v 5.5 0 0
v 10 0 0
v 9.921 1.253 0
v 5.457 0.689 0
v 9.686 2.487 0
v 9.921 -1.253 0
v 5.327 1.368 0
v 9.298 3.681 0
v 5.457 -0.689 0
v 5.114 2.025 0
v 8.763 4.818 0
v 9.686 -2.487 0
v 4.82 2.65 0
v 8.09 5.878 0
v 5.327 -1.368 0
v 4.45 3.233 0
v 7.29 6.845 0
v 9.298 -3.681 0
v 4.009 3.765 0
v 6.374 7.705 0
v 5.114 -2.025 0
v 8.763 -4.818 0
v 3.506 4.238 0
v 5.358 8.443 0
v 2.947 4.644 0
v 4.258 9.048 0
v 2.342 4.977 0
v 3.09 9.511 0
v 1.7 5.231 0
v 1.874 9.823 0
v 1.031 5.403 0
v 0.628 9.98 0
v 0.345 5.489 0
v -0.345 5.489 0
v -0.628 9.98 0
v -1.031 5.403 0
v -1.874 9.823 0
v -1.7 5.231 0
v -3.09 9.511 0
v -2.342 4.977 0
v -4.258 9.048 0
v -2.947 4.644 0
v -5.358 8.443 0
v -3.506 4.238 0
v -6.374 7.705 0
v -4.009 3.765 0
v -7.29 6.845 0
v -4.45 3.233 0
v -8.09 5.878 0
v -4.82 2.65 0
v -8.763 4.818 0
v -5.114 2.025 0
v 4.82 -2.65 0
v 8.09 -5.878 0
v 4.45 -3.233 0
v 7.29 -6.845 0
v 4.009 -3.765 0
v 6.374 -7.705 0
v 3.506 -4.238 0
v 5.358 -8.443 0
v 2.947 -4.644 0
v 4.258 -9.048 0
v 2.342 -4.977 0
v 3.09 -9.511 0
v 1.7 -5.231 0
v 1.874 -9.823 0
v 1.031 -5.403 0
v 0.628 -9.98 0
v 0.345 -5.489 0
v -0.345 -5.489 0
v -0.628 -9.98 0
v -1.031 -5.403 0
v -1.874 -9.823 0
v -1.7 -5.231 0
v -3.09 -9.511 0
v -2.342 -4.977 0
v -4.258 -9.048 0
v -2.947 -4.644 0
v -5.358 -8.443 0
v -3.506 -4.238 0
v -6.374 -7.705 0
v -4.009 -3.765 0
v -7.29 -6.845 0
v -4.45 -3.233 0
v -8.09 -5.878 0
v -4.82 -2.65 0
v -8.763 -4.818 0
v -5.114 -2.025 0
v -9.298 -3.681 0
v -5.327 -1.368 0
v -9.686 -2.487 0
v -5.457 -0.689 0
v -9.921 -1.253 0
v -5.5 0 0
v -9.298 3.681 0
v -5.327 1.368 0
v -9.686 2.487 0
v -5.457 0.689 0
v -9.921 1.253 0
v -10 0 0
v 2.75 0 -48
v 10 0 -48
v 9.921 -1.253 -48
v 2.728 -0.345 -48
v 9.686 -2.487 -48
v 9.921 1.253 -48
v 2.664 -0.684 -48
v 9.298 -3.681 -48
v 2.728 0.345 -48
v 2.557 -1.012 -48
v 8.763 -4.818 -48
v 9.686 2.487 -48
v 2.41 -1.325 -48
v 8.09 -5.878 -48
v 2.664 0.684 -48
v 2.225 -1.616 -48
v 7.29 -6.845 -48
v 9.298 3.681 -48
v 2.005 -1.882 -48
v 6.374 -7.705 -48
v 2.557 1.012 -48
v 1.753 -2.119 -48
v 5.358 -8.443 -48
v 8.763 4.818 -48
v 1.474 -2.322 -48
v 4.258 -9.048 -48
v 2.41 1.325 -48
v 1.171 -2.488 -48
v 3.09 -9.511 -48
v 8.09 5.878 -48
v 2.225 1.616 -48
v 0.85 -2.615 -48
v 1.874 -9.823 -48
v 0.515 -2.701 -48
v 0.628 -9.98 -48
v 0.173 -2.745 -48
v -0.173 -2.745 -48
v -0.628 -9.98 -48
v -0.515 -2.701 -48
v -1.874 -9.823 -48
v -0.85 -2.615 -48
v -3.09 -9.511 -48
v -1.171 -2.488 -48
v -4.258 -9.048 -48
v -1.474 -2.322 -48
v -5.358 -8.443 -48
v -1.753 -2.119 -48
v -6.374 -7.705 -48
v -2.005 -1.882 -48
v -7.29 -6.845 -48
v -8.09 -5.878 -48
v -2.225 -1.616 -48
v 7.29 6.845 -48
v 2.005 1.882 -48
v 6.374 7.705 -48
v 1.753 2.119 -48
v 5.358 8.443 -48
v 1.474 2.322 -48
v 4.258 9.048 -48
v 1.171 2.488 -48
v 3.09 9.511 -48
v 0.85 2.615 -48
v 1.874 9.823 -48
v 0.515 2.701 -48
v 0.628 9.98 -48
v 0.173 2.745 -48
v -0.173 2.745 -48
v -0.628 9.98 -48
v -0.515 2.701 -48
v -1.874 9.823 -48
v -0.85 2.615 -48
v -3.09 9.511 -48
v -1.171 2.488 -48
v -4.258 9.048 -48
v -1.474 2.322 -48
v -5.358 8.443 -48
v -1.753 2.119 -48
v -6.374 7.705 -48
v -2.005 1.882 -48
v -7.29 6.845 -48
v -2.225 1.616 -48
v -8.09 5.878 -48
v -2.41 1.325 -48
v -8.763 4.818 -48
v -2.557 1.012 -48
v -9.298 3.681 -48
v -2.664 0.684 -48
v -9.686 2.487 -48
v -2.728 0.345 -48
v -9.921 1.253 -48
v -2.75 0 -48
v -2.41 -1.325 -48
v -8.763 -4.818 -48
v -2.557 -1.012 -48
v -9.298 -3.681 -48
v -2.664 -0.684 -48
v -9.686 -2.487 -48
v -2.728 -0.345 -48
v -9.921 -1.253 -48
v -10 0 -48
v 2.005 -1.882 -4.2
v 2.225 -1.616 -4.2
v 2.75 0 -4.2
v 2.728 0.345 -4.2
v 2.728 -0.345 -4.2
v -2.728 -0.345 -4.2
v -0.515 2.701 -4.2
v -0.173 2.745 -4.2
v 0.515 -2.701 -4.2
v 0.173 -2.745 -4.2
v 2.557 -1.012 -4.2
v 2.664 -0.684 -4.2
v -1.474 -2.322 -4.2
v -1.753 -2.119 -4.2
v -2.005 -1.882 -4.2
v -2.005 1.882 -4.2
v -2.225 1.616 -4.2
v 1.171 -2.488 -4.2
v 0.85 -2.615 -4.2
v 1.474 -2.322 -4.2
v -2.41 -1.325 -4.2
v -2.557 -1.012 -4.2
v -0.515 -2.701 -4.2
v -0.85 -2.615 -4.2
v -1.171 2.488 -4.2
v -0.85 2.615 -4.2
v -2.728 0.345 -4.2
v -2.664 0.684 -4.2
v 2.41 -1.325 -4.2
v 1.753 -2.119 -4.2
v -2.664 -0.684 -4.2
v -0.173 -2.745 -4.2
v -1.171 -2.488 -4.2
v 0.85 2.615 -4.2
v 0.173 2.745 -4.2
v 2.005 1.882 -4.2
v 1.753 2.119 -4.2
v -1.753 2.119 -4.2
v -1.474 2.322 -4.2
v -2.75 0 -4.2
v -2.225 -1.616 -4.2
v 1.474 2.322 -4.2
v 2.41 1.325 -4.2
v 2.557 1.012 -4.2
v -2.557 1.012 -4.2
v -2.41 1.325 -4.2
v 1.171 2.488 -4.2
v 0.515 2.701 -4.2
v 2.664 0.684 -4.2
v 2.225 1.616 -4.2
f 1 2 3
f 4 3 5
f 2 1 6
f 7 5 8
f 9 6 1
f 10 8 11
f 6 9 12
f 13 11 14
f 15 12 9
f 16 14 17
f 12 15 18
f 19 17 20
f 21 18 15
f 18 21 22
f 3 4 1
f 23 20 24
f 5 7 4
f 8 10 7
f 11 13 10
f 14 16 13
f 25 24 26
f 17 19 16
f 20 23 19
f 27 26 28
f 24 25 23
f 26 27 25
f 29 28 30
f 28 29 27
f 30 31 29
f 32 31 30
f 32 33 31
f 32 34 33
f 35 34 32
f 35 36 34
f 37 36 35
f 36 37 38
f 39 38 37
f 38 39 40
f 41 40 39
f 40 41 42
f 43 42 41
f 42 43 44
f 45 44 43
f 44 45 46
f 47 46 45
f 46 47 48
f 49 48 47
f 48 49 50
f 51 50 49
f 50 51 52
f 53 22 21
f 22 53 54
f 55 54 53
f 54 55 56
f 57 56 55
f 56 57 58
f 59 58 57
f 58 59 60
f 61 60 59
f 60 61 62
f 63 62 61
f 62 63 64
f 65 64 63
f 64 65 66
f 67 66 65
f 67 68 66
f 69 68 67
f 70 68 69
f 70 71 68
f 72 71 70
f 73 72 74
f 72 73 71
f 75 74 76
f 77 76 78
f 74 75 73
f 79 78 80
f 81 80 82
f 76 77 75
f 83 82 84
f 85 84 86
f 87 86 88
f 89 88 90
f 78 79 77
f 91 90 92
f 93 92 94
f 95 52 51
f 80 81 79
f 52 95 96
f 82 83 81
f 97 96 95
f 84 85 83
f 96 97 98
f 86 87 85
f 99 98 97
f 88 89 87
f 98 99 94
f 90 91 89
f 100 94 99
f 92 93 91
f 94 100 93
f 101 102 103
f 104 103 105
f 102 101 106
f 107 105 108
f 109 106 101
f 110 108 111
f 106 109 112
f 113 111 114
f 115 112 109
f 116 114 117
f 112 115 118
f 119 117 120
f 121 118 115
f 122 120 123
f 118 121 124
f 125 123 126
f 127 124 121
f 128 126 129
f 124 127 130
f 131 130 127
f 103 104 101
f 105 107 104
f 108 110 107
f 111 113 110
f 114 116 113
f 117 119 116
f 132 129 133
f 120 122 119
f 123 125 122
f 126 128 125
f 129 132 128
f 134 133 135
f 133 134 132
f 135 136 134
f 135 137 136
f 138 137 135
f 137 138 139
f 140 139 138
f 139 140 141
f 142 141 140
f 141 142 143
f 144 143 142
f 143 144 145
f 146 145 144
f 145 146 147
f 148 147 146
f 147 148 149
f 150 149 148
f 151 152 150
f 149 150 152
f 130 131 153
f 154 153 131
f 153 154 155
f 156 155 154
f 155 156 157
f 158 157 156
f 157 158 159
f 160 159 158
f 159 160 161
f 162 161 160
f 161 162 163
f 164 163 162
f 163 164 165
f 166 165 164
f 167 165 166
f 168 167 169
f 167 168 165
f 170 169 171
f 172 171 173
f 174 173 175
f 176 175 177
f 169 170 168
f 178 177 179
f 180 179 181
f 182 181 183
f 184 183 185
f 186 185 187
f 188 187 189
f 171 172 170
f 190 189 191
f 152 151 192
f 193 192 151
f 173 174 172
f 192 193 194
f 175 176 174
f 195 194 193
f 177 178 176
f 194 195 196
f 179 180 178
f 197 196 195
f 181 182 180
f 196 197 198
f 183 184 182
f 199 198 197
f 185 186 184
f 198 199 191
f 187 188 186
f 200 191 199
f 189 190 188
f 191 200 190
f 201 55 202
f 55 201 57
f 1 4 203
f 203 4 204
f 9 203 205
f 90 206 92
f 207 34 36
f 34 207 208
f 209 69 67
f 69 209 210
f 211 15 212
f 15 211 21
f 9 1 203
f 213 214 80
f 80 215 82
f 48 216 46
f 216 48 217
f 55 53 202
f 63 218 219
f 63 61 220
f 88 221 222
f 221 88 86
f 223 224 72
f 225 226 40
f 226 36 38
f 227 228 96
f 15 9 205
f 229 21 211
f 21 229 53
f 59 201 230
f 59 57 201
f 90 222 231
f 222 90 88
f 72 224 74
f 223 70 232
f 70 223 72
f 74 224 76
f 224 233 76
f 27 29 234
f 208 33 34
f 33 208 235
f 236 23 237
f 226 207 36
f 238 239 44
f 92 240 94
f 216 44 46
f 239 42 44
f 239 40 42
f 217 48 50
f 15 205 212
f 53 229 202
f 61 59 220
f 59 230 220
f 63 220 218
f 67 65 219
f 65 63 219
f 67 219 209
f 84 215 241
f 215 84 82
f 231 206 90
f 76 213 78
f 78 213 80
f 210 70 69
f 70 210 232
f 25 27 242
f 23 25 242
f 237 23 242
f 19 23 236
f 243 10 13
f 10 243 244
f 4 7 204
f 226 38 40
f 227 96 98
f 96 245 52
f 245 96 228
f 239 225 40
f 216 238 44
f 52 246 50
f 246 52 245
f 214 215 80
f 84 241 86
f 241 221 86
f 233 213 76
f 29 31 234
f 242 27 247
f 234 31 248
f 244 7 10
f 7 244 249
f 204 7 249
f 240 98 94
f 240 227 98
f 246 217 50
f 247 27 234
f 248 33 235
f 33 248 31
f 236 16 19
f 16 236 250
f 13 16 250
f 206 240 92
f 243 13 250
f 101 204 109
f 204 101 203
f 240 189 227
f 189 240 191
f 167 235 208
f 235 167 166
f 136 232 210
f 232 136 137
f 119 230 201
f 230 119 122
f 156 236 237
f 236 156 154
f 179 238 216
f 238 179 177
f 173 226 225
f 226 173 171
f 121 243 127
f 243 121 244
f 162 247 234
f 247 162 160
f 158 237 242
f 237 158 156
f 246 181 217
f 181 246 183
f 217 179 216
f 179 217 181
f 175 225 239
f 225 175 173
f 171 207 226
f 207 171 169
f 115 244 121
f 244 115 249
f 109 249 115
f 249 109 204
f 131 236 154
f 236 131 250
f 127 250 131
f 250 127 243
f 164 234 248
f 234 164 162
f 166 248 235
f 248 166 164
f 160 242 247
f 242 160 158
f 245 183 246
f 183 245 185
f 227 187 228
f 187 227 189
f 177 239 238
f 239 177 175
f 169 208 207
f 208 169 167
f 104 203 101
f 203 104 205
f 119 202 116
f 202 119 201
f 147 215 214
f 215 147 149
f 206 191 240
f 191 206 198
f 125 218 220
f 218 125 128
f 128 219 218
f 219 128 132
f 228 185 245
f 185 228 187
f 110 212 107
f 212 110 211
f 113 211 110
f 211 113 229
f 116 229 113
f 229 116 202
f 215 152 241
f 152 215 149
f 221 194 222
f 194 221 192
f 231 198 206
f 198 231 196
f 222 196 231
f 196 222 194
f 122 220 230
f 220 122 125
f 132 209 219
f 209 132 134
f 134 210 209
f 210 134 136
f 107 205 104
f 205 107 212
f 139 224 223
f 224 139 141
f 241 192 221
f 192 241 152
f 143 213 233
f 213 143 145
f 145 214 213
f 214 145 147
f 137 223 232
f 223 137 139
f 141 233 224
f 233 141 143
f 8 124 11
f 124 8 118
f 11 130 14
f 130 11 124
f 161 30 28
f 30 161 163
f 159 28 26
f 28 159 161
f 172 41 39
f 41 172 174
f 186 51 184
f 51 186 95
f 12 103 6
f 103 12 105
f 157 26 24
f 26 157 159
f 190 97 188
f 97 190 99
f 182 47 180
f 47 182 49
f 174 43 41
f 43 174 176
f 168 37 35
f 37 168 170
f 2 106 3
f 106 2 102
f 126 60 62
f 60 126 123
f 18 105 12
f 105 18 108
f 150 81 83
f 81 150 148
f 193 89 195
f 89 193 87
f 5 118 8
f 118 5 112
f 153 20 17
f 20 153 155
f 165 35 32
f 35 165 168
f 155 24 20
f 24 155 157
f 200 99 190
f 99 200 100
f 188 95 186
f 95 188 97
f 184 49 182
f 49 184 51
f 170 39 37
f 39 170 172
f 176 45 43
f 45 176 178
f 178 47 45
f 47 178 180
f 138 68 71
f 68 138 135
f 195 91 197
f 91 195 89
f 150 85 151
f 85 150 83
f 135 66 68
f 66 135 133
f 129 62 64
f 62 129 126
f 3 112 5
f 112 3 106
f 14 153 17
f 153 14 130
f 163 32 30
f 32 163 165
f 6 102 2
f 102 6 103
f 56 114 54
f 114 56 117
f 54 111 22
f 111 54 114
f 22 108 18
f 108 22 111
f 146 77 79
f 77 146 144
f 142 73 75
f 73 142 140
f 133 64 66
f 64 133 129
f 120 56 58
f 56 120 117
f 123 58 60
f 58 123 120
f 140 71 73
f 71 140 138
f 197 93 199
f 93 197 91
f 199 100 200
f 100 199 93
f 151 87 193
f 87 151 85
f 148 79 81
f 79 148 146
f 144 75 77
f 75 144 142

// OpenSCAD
$fn = 50;


difference() {
	union() {
		translate(v = [0, 0, -48.0000000000]) {
			cylinder(h = 48, r = 10.0000000000);
		}
	}
	union() {
		translate(v = [0, 0, 0]) {
			rotate(a = [0, 0, 0]) {
				difference() {
					union() {
						#translate(v = [0, 0, -48.0000000000]) {
							cylinder(h = 48, r = 2.2500000000);
						}
						#translate(v = [0, 0, -4.2000000000]) {
							cylinder(h = 4.2000000000, r1 = 2.7500000000, r2 = 5.5000000000);
						}
						#translate(v = [0, 0, -48.0000000000]) {
							cylinder(h = 48, r = 2.7500000000);
						}
						#translate(v = [0, 0, -48.0000000000]) {
							cylinder(h = 48, r = 2.2500000000);
						}
					}
					union();
				}
			}
		}
	}
}
